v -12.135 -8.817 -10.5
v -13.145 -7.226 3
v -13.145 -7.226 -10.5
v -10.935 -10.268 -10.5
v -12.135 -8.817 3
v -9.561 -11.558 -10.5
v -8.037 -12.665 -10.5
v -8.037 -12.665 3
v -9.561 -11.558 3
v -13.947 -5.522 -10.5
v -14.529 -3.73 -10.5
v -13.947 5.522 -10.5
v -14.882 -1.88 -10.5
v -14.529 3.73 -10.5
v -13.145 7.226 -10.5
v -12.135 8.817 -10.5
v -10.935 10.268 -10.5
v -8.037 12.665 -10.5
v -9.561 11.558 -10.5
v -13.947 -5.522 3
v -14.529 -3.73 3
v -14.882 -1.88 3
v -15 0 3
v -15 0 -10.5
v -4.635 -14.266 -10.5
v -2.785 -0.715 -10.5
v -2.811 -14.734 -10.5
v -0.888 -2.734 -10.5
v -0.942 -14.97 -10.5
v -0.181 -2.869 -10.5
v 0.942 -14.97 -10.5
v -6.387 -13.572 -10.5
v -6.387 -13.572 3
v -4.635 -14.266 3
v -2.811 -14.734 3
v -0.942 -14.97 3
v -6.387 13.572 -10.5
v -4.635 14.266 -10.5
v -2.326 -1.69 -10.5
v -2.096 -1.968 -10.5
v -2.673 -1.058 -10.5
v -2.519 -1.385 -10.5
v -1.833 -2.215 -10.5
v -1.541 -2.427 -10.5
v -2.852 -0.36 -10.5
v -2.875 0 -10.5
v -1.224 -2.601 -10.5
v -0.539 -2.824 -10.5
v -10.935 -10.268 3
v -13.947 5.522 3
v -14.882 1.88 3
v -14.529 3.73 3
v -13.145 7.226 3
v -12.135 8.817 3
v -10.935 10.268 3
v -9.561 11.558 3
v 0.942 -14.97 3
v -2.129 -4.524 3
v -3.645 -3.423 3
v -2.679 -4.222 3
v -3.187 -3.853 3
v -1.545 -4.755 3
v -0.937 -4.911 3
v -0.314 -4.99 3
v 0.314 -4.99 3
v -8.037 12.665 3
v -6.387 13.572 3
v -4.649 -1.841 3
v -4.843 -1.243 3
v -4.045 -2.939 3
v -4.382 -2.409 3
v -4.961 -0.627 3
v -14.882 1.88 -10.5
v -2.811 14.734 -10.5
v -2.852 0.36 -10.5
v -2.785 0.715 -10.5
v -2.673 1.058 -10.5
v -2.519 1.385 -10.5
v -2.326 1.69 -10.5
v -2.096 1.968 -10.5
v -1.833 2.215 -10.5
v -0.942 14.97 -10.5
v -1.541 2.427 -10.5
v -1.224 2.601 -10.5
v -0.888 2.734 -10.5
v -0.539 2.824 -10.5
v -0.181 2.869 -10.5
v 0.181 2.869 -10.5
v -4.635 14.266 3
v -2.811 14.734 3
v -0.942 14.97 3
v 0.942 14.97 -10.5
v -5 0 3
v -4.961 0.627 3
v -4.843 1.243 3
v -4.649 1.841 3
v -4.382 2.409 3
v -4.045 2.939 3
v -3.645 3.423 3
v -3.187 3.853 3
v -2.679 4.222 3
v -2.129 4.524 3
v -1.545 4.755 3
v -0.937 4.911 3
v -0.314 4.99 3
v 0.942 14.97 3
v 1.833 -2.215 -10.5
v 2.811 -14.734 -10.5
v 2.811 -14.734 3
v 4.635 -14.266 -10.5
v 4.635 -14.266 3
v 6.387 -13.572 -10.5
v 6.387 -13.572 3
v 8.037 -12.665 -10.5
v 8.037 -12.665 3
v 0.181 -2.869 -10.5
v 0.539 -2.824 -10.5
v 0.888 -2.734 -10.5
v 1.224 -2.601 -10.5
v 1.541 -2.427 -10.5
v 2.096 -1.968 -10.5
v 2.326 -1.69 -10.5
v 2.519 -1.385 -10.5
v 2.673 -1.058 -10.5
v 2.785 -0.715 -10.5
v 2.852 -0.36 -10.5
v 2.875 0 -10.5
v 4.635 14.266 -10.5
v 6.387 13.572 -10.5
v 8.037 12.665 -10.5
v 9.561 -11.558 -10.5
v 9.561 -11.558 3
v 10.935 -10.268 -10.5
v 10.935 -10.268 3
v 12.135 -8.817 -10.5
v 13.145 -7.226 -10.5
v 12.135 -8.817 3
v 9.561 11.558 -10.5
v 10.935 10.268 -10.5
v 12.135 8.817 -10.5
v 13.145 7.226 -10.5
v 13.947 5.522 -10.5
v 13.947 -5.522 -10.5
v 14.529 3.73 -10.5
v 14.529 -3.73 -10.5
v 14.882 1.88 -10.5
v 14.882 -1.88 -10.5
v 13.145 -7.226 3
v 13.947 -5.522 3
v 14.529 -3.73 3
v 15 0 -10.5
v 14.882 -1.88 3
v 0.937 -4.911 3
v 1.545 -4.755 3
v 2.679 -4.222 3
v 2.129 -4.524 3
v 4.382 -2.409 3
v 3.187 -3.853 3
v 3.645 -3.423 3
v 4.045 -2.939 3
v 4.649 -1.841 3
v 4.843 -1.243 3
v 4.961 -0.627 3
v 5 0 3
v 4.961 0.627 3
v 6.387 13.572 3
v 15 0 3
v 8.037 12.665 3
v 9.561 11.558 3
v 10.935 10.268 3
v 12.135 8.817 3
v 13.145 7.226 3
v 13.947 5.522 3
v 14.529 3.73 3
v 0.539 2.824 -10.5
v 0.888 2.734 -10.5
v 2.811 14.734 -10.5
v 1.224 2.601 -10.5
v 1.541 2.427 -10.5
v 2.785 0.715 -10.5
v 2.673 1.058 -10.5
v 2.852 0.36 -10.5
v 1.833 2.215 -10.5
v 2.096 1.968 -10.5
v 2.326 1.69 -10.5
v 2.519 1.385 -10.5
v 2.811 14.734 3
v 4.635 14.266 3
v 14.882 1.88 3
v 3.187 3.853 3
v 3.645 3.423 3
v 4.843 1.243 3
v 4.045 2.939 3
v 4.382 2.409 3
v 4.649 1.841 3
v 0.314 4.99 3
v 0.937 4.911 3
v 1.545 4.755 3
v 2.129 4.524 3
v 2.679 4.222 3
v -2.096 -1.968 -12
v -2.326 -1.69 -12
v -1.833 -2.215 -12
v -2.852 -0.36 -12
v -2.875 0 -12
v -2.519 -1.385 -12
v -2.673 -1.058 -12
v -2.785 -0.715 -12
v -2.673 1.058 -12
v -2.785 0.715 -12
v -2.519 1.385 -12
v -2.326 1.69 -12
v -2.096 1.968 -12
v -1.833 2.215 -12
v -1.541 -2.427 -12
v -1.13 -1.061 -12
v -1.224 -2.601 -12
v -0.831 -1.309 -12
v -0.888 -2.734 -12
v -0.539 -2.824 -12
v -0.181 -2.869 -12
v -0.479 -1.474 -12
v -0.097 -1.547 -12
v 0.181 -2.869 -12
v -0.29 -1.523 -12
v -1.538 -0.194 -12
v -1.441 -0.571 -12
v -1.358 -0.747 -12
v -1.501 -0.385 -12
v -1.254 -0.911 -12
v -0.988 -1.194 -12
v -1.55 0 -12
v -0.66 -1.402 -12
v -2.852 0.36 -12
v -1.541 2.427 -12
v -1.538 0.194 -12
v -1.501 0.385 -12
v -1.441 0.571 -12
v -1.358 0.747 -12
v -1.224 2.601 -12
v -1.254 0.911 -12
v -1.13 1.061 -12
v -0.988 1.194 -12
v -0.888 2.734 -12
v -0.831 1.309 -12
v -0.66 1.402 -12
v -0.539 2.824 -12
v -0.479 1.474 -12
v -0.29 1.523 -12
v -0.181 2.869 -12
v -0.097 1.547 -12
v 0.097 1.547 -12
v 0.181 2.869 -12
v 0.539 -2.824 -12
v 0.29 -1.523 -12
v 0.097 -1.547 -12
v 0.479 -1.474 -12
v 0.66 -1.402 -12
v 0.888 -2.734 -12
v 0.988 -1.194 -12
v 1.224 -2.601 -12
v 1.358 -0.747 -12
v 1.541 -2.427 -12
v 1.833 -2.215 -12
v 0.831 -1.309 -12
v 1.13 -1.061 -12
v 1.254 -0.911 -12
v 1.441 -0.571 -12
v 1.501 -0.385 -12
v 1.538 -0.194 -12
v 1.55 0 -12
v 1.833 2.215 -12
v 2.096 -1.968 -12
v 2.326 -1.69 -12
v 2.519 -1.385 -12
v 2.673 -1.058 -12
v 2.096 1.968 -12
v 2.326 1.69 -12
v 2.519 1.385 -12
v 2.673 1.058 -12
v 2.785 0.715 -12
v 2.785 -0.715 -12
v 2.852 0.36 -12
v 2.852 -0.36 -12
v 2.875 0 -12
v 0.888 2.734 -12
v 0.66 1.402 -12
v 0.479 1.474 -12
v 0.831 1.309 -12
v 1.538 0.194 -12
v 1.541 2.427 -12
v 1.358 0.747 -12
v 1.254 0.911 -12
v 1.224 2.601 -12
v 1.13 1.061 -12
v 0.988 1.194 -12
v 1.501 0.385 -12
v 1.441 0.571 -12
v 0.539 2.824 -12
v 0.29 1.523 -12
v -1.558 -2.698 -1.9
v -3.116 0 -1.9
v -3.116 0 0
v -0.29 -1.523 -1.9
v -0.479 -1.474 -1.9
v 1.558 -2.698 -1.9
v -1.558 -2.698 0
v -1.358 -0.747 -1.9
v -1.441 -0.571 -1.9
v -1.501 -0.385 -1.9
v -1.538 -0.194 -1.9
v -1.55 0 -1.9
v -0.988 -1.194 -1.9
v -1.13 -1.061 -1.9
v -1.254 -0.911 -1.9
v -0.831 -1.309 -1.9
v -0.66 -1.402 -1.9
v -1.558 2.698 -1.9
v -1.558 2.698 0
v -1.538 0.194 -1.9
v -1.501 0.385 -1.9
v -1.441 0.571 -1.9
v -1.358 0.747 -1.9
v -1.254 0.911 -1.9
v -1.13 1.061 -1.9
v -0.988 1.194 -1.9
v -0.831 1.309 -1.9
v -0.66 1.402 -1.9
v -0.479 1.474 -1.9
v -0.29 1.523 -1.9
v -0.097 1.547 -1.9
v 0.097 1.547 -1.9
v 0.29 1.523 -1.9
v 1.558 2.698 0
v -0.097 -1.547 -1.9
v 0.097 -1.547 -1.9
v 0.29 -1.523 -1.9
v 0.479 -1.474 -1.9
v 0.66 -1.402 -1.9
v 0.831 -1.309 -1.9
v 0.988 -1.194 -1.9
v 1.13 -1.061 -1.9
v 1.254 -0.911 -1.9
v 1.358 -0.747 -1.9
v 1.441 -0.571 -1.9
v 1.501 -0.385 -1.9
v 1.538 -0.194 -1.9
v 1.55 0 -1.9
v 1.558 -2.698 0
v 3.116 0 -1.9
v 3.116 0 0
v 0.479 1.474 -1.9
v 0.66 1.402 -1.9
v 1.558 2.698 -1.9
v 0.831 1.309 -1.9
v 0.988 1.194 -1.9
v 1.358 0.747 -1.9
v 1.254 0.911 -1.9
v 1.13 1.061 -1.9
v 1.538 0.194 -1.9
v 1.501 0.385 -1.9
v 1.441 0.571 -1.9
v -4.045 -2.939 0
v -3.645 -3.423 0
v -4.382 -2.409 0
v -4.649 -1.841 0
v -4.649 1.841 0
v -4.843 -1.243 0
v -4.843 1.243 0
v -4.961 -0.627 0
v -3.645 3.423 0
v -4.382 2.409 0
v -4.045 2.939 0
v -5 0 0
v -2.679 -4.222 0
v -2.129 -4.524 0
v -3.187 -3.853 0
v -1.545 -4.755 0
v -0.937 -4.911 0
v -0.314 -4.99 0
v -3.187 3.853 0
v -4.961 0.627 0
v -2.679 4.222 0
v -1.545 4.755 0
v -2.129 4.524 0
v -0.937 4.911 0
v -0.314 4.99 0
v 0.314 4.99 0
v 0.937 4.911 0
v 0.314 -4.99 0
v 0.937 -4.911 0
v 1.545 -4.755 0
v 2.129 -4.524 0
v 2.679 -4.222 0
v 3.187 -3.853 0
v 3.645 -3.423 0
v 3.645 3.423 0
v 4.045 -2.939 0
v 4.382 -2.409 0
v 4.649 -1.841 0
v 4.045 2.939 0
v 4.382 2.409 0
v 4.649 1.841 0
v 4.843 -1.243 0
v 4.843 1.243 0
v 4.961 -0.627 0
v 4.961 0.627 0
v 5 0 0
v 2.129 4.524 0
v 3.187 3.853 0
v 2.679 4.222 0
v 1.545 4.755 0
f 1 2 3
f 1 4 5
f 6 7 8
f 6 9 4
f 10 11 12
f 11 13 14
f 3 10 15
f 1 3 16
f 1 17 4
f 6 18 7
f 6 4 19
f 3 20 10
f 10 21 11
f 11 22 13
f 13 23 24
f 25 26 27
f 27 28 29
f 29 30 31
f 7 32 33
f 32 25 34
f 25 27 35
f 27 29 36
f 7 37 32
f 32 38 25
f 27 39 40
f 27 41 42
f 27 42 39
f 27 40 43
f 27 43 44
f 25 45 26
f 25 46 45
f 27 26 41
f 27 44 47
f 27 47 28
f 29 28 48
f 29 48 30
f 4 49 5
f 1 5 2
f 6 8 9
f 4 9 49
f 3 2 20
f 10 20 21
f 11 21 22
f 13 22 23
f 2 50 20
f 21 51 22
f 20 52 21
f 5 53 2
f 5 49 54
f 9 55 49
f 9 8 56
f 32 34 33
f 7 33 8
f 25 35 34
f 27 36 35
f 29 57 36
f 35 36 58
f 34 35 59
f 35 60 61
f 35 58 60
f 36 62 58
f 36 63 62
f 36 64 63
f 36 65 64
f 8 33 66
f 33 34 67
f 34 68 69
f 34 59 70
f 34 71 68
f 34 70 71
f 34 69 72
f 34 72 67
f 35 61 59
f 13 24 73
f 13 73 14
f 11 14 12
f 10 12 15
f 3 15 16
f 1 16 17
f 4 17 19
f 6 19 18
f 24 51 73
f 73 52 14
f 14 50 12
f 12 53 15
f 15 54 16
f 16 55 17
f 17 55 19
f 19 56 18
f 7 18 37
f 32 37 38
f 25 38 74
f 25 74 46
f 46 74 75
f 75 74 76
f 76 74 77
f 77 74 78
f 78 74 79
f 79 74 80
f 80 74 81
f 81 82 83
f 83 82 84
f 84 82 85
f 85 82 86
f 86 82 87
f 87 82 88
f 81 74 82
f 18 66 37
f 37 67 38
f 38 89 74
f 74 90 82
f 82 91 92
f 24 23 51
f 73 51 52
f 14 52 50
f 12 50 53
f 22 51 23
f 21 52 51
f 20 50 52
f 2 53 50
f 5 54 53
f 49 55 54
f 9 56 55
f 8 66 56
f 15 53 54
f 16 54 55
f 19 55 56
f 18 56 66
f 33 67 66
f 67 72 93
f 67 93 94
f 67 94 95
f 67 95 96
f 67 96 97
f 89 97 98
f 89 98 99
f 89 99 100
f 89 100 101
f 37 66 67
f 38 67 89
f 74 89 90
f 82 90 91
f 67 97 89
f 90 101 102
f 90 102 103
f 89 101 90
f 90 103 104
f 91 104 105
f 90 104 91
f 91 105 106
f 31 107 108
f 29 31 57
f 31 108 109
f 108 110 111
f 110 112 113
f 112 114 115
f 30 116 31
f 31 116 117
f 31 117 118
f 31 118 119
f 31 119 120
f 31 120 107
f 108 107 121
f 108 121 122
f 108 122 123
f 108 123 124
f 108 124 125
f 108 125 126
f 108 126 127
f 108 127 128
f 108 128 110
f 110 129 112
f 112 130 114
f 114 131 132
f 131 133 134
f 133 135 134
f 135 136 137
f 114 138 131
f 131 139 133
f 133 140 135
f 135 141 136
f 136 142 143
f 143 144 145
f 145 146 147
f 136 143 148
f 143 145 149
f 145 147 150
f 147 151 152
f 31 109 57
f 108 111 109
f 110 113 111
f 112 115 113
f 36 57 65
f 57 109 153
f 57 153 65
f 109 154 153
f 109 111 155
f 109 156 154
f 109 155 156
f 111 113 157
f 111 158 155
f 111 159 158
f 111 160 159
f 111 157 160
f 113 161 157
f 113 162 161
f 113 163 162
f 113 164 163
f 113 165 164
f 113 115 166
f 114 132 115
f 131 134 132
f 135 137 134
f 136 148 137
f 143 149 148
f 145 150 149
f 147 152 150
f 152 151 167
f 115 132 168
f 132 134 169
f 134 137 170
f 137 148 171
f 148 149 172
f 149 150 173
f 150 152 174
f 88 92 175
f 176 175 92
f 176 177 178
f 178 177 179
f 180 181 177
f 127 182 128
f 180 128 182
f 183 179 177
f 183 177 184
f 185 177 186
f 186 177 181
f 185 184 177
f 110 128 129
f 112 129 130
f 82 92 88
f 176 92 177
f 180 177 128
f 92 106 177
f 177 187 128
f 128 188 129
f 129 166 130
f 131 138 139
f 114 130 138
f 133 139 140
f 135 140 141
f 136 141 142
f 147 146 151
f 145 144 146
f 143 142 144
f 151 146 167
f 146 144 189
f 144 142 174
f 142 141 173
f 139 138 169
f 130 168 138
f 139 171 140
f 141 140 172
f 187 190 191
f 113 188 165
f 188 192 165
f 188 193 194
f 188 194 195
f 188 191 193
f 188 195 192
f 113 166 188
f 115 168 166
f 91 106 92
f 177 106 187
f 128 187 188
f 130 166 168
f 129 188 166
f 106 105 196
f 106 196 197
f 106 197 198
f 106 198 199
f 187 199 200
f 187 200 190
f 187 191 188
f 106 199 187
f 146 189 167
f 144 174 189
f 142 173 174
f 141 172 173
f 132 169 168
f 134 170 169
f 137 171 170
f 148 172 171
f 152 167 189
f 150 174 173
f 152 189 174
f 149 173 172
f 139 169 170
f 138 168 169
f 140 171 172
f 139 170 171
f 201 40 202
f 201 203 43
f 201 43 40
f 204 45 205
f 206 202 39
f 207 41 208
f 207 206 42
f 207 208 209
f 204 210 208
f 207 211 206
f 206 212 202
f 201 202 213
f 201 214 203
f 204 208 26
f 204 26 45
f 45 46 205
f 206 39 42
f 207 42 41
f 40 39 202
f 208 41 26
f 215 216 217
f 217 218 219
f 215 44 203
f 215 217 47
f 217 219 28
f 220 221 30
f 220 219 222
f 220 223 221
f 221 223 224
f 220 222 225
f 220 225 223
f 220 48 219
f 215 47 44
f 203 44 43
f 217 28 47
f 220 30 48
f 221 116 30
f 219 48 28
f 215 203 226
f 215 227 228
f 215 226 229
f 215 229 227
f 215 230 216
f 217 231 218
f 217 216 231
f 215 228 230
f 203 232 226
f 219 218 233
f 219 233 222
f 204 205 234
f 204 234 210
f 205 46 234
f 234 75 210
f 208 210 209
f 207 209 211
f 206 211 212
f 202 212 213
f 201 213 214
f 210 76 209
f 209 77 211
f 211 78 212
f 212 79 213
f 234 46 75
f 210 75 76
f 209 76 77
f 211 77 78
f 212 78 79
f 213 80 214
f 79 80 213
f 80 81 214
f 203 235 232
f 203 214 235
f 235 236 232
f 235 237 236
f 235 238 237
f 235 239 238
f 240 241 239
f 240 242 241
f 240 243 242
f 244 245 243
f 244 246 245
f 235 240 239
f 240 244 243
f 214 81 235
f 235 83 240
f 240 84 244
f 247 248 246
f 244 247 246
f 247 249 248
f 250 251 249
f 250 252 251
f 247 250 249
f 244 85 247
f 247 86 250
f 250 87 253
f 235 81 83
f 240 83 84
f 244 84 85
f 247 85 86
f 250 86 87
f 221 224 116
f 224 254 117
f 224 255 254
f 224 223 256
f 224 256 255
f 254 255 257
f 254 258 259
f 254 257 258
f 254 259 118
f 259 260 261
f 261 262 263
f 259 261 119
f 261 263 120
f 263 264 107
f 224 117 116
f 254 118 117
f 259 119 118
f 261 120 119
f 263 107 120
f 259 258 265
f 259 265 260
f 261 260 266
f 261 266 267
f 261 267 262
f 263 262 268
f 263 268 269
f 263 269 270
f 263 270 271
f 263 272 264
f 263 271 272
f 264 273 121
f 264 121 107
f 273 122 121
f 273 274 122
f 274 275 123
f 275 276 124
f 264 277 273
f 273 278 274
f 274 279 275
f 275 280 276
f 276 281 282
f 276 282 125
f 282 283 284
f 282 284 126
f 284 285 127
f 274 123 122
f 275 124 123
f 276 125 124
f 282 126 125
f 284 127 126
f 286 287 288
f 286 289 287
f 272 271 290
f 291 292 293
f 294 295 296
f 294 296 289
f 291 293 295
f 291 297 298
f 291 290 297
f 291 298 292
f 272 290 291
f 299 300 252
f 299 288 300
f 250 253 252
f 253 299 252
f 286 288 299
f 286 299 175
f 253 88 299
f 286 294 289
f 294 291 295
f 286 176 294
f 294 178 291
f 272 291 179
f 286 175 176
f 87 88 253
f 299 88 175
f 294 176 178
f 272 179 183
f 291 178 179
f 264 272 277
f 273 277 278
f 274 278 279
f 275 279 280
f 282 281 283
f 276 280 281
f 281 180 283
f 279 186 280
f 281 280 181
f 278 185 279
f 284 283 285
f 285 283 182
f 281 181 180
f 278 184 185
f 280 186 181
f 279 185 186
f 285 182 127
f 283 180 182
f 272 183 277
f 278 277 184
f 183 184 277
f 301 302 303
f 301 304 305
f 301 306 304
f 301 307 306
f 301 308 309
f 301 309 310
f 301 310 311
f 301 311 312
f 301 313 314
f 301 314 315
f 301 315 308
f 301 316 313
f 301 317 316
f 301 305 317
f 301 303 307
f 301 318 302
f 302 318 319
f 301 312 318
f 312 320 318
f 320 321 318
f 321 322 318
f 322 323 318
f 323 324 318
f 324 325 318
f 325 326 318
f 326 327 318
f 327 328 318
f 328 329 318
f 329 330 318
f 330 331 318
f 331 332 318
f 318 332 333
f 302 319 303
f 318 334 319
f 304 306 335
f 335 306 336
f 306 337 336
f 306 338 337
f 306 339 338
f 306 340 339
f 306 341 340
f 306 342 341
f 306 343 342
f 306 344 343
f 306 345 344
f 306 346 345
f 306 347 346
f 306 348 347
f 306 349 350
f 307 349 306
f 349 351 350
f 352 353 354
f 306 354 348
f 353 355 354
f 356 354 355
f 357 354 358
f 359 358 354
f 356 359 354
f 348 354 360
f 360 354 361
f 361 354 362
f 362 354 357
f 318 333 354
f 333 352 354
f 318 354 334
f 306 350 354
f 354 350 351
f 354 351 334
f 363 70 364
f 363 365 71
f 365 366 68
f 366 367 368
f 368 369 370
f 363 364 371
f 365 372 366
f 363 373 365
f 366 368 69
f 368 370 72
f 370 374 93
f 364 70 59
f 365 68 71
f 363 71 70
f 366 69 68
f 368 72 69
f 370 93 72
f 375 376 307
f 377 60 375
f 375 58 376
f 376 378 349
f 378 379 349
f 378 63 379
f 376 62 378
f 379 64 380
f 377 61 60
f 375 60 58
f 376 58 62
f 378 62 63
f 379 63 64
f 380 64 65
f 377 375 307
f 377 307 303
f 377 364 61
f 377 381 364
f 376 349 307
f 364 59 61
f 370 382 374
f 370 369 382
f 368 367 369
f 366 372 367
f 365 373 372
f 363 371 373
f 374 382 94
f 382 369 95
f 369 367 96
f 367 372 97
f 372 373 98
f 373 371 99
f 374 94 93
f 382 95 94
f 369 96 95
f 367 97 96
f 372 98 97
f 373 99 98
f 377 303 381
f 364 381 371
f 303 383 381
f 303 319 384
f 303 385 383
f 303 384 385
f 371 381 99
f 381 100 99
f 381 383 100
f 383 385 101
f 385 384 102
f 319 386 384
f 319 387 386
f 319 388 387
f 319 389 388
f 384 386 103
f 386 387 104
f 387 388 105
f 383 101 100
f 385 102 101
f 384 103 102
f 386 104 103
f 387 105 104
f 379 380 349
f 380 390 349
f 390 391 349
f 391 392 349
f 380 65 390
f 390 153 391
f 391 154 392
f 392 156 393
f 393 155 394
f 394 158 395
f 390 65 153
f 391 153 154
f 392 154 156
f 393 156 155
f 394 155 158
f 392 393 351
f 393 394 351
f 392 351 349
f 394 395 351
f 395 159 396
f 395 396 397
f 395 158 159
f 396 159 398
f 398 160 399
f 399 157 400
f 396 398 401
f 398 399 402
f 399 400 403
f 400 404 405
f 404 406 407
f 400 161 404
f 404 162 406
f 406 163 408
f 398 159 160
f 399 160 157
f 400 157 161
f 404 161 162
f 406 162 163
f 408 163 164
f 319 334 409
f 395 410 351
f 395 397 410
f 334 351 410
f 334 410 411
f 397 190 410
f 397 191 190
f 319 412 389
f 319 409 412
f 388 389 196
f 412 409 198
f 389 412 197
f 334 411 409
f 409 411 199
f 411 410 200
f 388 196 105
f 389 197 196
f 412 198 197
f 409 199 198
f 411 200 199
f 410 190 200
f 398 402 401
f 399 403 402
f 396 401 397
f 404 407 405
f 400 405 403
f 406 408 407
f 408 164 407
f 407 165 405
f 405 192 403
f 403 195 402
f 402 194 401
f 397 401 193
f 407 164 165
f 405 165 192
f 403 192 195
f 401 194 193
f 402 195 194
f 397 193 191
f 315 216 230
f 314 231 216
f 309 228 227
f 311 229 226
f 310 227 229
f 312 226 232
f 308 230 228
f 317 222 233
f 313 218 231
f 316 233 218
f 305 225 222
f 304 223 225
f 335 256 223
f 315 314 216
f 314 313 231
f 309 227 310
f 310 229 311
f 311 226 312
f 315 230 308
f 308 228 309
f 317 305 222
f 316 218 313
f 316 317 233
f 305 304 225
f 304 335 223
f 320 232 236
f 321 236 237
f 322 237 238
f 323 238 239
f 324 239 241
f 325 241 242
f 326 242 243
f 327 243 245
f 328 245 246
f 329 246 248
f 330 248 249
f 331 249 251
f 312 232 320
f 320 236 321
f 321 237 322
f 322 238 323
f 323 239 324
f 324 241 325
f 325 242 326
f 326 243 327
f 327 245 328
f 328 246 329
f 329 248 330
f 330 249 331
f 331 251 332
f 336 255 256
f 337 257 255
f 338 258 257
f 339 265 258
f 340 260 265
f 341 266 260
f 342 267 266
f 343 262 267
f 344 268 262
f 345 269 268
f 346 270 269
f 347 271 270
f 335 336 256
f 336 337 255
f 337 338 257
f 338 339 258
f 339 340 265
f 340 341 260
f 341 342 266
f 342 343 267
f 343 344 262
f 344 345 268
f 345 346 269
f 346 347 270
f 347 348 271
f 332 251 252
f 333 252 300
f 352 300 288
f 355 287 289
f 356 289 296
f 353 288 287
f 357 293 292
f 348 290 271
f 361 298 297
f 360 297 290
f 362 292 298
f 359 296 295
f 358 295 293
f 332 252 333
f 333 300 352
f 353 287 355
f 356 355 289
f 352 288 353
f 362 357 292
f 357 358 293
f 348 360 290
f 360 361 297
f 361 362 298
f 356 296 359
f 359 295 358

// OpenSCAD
$fn = 50;

difference() {
	union() {
		translate(v = [0, 0, -10.5]) {
			cylinder(h = 13.5, r = 15.0);
		}
		#translate(v = [0, 0, -12.0]) {
			cylinder(h = 12, r = 2.875);
		}
	}
	union() {
		translate(v = [0, 0, 0]) {
			rotate(a = [0, 0, 0]) {
				difference() {
					union() {
						translate(v = [0, 0, -1.9]) {
							linear_extrude(height = 1.9) {
								polygon(points = [[3.1158, 0.0], [1.5579000000000005, 2.698361953111554], [-1.5578999999999994, 2.6983619531115544], [-3.1158, 3.815754496783323e-16], [-1.5579000000000014, -2.6983619531115535], [1.557899999999998, -2.6983619531115552]]);
							}
						}
					}
					union();
				}
			}
		}
		#cylinder(h = 3, r = 5.0);
		#translate(v = [0, 0, -100.0]) {
			cylinder(h = 200, r = 1.55);
		}
	}
}
